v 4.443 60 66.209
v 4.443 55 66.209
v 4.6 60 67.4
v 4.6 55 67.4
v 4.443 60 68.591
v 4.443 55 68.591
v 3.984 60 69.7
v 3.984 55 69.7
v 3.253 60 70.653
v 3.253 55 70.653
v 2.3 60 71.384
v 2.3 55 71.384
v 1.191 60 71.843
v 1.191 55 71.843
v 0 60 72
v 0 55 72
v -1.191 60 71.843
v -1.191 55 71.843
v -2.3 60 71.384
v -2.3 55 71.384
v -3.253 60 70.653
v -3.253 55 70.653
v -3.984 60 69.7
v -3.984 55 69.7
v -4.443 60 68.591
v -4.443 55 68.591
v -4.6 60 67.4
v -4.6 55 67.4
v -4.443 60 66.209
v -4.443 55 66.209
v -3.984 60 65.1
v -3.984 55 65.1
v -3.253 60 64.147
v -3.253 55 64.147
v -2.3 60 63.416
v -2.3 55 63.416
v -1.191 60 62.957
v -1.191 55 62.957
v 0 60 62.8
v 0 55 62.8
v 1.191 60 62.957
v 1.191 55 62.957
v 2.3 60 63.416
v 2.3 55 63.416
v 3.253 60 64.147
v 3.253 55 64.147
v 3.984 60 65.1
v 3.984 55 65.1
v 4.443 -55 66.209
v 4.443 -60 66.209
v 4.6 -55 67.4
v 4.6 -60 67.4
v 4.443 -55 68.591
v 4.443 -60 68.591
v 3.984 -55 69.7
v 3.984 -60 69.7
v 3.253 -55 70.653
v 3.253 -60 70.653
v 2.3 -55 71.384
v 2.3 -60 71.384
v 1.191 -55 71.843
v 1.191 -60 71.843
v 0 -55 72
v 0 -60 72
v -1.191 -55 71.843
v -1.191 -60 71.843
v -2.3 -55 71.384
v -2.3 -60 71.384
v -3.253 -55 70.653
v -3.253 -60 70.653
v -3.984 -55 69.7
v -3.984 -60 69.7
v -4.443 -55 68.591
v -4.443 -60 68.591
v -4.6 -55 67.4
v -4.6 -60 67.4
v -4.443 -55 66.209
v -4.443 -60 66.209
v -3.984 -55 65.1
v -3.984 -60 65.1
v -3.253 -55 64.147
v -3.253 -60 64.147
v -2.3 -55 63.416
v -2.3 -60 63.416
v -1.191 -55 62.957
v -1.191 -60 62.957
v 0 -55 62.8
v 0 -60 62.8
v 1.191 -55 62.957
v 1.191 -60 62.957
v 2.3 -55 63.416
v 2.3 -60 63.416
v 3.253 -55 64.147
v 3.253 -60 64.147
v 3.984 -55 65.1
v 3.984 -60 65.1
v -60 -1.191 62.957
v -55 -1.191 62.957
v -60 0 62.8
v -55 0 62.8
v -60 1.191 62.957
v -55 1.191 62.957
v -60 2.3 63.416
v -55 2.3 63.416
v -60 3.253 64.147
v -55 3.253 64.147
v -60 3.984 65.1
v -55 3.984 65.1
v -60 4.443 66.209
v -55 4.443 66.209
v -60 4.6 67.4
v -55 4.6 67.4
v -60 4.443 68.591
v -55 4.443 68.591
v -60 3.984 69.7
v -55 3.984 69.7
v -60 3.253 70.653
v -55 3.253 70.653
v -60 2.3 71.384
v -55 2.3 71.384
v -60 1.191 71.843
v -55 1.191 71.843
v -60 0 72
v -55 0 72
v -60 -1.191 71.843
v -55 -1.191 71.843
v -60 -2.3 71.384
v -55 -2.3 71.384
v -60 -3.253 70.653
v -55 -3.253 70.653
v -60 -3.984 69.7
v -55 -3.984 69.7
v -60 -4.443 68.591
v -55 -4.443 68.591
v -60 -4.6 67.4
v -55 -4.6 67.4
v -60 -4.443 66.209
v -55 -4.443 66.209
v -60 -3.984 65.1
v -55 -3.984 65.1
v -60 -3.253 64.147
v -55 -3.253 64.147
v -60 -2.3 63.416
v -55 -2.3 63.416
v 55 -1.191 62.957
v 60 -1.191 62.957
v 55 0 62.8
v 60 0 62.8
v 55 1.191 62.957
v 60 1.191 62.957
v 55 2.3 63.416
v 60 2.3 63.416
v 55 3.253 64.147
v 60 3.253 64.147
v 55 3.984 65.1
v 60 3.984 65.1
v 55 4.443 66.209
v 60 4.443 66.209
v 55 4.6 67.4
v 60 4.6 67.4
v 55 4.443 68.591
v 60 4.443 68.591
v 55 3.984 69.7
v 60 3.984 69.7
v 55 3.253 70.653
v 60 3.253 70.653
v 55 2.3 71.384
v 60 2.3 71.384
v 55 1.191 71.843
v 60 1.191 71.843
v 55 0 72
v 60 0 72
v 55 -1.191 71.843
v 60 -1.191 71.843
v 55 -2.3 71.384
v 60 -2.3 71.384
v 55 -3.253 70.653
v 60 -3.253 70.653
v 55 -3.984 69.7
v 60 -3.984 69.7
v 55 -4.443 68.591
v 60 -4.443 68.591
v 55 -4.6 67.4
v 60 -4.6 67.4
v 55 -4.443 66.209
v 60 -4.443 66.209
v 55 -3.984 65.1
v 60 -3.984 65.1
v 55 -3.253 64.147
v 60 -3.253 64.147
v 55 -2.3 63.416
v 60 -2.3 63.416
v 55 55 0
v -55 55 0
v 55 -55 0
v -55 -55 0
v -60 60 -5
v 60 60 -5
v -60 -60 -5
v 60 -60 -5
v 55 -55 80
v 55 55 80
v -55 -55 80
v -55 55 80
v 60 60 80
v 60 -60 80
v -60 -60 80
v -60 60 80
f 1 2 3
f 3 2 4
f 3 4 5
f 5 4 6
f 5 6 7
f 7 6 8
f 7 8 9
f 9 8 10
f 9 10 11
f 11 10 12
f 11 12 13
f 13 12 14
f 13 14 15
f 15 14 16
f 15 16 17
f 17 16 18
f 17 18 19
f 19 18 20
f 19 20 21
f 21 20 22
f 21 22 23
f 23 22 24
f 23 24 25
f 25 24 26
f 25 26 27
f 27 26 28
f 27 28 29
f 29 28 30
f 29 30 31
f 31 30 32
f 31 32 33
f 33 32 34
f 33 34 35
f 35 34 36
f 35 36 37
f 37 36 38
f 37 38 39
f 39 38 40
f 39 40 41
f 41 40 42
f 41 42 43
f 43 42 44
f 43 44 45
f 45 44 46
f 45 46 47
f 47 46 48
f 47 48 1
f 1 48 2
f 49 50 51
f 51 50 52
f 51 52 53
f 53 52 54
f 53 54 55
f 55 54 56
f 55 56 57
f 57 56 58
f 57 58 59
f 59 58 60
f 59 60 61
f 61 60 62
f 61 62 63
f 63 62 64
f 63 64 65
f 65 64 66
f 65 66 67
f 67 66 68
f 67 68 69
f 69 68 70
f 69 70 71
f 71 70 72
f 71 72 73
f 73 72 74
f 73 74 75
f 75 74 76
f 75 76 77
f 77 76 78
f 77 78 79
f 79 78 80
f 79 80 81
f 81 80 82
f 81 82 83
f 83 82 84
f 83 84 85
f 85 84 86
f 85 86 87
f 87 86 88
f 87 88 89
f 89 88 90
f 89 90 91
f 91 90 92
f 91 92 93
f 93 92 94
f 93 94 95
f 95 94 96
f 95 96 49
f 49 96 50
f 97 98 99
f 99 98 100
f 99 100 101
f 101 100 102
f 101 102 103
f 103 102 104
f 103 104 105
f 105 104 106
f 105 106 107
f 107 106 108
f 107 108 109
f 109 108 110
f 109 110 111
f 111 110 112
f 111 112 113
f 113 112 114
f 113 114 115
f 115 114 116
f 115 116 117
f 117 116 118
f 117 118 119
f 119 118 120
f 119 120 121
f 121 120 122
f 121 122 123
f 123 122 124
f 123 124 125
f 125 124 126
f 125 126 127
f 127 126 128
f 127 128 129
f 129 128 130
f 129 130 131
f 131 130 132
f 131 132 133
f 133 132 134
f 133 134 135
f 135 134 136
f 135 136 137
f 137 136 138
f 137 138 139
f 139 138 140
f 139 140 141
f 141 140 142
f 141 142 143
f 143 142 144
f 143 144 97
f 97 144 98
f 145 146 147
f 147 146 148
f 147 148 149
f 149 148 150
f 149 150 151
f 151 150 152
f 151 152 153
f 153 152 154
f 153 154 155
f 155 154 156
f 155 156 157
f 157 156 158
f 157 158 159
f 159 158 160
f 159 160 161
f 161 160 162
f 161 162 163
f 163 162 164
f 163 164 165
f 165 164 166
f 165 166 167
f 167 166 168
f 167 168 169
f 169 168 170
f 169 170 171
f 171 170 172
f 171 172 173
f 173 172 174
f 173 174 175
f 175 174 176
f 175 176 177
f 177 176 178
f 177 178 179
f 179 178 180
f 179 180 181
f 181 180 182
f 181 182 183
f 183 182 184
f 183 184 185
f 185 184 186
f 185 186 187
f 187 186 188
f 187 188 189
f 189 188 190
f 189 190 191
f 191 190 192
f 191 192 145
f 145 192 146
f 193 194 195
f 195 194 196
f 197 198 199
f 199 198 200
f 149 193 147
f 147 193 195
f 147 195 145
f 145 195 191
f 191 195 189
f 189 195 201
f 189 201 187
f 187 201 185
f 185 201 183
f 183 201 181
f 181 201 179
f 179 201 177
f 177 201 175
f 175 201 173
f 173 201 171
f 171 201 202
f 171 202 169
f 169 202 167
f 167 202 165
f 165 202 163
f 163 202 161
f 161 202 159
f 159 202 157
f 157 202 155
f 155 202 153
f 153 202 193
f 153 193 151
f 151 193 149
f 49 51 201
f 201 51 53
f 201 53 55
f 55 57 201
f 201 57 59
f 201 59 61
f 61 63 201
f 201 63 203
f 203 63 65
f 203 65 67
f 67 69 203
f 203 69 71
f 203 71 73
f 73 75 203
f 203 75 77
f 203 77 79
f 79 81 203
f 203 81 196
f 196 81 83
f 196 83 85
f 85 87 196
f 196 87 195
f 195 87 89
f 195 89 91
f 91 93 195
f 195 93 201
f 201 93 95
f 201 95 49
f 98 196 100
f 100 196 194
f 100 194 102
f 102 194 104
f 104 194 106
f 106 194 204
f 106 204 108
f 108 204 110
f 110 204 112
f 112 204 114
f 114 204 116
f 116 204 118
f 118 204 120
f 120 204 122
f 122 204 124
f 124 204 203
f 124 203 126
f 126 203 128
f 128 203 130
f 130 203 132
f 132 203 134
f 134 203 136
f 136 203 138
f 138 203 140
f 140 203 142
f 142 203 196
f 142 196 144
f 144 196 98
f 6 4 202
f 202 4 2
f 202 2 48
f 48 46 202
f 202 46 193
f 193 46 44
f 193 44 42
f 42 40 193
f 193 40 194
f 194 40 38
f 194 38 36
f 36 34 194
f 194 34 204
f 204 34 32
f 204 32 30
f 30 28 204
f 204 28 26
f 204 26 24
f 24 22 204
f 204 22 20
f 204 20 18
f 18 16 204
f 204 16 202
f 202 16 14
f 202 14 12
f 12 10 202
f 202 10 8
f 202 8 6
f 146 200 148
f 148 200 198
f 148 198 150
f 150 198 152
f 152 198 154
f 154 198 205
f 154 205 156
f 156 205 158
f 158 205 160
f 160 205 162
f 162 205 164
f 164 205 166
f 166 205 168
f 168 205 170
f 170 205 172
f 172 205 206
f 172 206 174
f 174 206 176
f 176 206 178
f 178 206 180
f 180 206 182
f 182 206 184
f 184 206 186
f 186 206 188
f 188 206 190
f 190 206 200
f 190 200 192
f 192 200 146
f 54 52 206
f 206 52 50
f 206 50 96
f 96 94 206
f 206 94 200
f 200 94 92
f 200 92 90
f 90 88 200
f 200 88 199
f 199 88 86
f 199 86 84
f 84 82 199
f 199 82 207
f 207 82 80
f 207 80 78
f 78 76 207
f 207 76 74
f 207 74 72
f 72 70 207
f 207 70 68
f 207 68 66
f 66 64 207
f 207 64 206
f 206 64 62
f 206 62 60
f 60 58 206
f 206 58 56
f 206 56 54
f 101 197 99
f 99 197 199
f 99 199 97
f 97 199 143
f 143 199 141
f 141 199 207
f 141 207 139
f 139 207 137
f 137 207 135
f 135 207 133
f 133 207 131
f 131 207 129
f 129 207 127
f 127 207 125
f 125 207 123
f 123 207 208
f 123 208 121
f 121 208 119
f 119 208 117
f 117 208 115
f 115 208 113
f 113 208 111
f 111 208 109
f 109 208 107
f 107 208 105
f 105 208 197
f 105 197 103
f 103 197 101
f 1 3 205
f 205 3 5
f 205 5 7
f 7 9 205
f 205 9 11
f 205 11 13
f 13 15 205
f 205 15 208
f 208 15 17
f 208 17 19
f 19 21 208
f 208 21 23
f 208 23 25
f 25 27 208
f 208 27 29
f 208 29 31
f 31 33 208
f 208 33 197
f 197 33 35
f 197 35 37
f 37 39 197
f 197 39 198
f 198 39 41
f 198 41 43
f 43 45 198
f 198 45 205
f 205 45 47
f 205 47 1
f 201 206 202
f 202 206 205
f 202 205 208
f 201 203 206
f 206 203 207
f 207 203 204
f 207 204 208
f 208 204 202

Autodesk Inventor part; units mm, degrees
ref_plane "YZ Plane" through (0, 0, 0) normal (1, 0, 0) x (0, 1, 0)
ref_plane "XZ Plane" through (0, 0, 0) normal (0, 1, 0) x (-1, 0, 0)
ref_plane "XY Plane" through (0, 0, 0) normal (0, 0, 1) x (1, 0, 0)
sketch "Sketch1" plane through (0, 0, 0) normal (0, 0, 1) x (1, 0, 0)
  line L0 (-55, 55) -> (55, 55)
  line L1 (55, 55) -> (55, -55)
  line L2 (55, -55) -> (-55, -55)
  line L3 (-55, -55) -> (-55, 55)
  line L4 (-60, 60) -> (60, 60)
  line L5 (60, 60) -> (60, -60)
  line L6 (60, -60) -> (-60, -60)
  line L7 (-60, -60) -> (-60, 60)
  point P0 (0, 0)
  dimension "d0" = 110
  dimension "d1" = 110
  dimension "d2" = 55
  dimension "d3" = 55
  dimension "d4" = 5
  dimension "d5" = 5
  dimension "d6" = 5
  dimension "d7" = 5
extrude "Extrusion1" add sketch "Sketch1" along normal blind 80
sketch "Sketch2" plane through (0, 0, 0) normal (0, 0, -1) x (-1, 0, 0)
  line L0 (60, 60) -> (60, -60) projected
  line L1 (-60, 60) -> (60, 60)
  line L2 (60, 60) -> (60, -60)
  line L3 (60, -60) -> (-60, -60)
  line L4 (-60, -60) -> (-60, 60)
  point P0 (0, 0)
extrude "Extrusion2" add sketch "Sketch2" along normal blind 5
sketch "Sketch3" plane through (-60, -60, 80) normal (0, -1, 0) x (1, 0, 0)
  circle A0 centre (60, -12.6) radius 4.6
  line L0 (0, 0) -> (120, 0) projected
  line L1 (120, 0) -> (120, -85) projected
  point P0 (60, -80)
  dimension "d12" = 9.2
  dimension "d13" = 12.6
  dimension "d14" = 60
sketch "Sketch4" plane through (60, -60, 80) normal (1, 0, 0) x (0, 0, -1)
  circle A0 centre (12.6, 60) radius 4.6
  line L0 (0, 0) -> (0, 120) projected
  line L1 (0, 120) -> (85, 120) projected
  point P0 (60, -120)
  dimension "d15" = 9.2
  dimension "d18" = 12.6
  dimension "d19" = 60
extrude "Extrusion3" cut sketch "Sketch4" against normal blind 120
extrude "Extrusion4" cut sketch "Sketch3" against normal blind 120
equation "\"d1\" = d0"
equation "\"d2\" = 0.5 * d0"
equation "\"d3\" = 0.5 * d0"
equation "\"d5\" = d4"
equation "\"d6\" = d4"
equation "\"d7\" = d4"
properties part number "Box" material "ABS Plastic"
